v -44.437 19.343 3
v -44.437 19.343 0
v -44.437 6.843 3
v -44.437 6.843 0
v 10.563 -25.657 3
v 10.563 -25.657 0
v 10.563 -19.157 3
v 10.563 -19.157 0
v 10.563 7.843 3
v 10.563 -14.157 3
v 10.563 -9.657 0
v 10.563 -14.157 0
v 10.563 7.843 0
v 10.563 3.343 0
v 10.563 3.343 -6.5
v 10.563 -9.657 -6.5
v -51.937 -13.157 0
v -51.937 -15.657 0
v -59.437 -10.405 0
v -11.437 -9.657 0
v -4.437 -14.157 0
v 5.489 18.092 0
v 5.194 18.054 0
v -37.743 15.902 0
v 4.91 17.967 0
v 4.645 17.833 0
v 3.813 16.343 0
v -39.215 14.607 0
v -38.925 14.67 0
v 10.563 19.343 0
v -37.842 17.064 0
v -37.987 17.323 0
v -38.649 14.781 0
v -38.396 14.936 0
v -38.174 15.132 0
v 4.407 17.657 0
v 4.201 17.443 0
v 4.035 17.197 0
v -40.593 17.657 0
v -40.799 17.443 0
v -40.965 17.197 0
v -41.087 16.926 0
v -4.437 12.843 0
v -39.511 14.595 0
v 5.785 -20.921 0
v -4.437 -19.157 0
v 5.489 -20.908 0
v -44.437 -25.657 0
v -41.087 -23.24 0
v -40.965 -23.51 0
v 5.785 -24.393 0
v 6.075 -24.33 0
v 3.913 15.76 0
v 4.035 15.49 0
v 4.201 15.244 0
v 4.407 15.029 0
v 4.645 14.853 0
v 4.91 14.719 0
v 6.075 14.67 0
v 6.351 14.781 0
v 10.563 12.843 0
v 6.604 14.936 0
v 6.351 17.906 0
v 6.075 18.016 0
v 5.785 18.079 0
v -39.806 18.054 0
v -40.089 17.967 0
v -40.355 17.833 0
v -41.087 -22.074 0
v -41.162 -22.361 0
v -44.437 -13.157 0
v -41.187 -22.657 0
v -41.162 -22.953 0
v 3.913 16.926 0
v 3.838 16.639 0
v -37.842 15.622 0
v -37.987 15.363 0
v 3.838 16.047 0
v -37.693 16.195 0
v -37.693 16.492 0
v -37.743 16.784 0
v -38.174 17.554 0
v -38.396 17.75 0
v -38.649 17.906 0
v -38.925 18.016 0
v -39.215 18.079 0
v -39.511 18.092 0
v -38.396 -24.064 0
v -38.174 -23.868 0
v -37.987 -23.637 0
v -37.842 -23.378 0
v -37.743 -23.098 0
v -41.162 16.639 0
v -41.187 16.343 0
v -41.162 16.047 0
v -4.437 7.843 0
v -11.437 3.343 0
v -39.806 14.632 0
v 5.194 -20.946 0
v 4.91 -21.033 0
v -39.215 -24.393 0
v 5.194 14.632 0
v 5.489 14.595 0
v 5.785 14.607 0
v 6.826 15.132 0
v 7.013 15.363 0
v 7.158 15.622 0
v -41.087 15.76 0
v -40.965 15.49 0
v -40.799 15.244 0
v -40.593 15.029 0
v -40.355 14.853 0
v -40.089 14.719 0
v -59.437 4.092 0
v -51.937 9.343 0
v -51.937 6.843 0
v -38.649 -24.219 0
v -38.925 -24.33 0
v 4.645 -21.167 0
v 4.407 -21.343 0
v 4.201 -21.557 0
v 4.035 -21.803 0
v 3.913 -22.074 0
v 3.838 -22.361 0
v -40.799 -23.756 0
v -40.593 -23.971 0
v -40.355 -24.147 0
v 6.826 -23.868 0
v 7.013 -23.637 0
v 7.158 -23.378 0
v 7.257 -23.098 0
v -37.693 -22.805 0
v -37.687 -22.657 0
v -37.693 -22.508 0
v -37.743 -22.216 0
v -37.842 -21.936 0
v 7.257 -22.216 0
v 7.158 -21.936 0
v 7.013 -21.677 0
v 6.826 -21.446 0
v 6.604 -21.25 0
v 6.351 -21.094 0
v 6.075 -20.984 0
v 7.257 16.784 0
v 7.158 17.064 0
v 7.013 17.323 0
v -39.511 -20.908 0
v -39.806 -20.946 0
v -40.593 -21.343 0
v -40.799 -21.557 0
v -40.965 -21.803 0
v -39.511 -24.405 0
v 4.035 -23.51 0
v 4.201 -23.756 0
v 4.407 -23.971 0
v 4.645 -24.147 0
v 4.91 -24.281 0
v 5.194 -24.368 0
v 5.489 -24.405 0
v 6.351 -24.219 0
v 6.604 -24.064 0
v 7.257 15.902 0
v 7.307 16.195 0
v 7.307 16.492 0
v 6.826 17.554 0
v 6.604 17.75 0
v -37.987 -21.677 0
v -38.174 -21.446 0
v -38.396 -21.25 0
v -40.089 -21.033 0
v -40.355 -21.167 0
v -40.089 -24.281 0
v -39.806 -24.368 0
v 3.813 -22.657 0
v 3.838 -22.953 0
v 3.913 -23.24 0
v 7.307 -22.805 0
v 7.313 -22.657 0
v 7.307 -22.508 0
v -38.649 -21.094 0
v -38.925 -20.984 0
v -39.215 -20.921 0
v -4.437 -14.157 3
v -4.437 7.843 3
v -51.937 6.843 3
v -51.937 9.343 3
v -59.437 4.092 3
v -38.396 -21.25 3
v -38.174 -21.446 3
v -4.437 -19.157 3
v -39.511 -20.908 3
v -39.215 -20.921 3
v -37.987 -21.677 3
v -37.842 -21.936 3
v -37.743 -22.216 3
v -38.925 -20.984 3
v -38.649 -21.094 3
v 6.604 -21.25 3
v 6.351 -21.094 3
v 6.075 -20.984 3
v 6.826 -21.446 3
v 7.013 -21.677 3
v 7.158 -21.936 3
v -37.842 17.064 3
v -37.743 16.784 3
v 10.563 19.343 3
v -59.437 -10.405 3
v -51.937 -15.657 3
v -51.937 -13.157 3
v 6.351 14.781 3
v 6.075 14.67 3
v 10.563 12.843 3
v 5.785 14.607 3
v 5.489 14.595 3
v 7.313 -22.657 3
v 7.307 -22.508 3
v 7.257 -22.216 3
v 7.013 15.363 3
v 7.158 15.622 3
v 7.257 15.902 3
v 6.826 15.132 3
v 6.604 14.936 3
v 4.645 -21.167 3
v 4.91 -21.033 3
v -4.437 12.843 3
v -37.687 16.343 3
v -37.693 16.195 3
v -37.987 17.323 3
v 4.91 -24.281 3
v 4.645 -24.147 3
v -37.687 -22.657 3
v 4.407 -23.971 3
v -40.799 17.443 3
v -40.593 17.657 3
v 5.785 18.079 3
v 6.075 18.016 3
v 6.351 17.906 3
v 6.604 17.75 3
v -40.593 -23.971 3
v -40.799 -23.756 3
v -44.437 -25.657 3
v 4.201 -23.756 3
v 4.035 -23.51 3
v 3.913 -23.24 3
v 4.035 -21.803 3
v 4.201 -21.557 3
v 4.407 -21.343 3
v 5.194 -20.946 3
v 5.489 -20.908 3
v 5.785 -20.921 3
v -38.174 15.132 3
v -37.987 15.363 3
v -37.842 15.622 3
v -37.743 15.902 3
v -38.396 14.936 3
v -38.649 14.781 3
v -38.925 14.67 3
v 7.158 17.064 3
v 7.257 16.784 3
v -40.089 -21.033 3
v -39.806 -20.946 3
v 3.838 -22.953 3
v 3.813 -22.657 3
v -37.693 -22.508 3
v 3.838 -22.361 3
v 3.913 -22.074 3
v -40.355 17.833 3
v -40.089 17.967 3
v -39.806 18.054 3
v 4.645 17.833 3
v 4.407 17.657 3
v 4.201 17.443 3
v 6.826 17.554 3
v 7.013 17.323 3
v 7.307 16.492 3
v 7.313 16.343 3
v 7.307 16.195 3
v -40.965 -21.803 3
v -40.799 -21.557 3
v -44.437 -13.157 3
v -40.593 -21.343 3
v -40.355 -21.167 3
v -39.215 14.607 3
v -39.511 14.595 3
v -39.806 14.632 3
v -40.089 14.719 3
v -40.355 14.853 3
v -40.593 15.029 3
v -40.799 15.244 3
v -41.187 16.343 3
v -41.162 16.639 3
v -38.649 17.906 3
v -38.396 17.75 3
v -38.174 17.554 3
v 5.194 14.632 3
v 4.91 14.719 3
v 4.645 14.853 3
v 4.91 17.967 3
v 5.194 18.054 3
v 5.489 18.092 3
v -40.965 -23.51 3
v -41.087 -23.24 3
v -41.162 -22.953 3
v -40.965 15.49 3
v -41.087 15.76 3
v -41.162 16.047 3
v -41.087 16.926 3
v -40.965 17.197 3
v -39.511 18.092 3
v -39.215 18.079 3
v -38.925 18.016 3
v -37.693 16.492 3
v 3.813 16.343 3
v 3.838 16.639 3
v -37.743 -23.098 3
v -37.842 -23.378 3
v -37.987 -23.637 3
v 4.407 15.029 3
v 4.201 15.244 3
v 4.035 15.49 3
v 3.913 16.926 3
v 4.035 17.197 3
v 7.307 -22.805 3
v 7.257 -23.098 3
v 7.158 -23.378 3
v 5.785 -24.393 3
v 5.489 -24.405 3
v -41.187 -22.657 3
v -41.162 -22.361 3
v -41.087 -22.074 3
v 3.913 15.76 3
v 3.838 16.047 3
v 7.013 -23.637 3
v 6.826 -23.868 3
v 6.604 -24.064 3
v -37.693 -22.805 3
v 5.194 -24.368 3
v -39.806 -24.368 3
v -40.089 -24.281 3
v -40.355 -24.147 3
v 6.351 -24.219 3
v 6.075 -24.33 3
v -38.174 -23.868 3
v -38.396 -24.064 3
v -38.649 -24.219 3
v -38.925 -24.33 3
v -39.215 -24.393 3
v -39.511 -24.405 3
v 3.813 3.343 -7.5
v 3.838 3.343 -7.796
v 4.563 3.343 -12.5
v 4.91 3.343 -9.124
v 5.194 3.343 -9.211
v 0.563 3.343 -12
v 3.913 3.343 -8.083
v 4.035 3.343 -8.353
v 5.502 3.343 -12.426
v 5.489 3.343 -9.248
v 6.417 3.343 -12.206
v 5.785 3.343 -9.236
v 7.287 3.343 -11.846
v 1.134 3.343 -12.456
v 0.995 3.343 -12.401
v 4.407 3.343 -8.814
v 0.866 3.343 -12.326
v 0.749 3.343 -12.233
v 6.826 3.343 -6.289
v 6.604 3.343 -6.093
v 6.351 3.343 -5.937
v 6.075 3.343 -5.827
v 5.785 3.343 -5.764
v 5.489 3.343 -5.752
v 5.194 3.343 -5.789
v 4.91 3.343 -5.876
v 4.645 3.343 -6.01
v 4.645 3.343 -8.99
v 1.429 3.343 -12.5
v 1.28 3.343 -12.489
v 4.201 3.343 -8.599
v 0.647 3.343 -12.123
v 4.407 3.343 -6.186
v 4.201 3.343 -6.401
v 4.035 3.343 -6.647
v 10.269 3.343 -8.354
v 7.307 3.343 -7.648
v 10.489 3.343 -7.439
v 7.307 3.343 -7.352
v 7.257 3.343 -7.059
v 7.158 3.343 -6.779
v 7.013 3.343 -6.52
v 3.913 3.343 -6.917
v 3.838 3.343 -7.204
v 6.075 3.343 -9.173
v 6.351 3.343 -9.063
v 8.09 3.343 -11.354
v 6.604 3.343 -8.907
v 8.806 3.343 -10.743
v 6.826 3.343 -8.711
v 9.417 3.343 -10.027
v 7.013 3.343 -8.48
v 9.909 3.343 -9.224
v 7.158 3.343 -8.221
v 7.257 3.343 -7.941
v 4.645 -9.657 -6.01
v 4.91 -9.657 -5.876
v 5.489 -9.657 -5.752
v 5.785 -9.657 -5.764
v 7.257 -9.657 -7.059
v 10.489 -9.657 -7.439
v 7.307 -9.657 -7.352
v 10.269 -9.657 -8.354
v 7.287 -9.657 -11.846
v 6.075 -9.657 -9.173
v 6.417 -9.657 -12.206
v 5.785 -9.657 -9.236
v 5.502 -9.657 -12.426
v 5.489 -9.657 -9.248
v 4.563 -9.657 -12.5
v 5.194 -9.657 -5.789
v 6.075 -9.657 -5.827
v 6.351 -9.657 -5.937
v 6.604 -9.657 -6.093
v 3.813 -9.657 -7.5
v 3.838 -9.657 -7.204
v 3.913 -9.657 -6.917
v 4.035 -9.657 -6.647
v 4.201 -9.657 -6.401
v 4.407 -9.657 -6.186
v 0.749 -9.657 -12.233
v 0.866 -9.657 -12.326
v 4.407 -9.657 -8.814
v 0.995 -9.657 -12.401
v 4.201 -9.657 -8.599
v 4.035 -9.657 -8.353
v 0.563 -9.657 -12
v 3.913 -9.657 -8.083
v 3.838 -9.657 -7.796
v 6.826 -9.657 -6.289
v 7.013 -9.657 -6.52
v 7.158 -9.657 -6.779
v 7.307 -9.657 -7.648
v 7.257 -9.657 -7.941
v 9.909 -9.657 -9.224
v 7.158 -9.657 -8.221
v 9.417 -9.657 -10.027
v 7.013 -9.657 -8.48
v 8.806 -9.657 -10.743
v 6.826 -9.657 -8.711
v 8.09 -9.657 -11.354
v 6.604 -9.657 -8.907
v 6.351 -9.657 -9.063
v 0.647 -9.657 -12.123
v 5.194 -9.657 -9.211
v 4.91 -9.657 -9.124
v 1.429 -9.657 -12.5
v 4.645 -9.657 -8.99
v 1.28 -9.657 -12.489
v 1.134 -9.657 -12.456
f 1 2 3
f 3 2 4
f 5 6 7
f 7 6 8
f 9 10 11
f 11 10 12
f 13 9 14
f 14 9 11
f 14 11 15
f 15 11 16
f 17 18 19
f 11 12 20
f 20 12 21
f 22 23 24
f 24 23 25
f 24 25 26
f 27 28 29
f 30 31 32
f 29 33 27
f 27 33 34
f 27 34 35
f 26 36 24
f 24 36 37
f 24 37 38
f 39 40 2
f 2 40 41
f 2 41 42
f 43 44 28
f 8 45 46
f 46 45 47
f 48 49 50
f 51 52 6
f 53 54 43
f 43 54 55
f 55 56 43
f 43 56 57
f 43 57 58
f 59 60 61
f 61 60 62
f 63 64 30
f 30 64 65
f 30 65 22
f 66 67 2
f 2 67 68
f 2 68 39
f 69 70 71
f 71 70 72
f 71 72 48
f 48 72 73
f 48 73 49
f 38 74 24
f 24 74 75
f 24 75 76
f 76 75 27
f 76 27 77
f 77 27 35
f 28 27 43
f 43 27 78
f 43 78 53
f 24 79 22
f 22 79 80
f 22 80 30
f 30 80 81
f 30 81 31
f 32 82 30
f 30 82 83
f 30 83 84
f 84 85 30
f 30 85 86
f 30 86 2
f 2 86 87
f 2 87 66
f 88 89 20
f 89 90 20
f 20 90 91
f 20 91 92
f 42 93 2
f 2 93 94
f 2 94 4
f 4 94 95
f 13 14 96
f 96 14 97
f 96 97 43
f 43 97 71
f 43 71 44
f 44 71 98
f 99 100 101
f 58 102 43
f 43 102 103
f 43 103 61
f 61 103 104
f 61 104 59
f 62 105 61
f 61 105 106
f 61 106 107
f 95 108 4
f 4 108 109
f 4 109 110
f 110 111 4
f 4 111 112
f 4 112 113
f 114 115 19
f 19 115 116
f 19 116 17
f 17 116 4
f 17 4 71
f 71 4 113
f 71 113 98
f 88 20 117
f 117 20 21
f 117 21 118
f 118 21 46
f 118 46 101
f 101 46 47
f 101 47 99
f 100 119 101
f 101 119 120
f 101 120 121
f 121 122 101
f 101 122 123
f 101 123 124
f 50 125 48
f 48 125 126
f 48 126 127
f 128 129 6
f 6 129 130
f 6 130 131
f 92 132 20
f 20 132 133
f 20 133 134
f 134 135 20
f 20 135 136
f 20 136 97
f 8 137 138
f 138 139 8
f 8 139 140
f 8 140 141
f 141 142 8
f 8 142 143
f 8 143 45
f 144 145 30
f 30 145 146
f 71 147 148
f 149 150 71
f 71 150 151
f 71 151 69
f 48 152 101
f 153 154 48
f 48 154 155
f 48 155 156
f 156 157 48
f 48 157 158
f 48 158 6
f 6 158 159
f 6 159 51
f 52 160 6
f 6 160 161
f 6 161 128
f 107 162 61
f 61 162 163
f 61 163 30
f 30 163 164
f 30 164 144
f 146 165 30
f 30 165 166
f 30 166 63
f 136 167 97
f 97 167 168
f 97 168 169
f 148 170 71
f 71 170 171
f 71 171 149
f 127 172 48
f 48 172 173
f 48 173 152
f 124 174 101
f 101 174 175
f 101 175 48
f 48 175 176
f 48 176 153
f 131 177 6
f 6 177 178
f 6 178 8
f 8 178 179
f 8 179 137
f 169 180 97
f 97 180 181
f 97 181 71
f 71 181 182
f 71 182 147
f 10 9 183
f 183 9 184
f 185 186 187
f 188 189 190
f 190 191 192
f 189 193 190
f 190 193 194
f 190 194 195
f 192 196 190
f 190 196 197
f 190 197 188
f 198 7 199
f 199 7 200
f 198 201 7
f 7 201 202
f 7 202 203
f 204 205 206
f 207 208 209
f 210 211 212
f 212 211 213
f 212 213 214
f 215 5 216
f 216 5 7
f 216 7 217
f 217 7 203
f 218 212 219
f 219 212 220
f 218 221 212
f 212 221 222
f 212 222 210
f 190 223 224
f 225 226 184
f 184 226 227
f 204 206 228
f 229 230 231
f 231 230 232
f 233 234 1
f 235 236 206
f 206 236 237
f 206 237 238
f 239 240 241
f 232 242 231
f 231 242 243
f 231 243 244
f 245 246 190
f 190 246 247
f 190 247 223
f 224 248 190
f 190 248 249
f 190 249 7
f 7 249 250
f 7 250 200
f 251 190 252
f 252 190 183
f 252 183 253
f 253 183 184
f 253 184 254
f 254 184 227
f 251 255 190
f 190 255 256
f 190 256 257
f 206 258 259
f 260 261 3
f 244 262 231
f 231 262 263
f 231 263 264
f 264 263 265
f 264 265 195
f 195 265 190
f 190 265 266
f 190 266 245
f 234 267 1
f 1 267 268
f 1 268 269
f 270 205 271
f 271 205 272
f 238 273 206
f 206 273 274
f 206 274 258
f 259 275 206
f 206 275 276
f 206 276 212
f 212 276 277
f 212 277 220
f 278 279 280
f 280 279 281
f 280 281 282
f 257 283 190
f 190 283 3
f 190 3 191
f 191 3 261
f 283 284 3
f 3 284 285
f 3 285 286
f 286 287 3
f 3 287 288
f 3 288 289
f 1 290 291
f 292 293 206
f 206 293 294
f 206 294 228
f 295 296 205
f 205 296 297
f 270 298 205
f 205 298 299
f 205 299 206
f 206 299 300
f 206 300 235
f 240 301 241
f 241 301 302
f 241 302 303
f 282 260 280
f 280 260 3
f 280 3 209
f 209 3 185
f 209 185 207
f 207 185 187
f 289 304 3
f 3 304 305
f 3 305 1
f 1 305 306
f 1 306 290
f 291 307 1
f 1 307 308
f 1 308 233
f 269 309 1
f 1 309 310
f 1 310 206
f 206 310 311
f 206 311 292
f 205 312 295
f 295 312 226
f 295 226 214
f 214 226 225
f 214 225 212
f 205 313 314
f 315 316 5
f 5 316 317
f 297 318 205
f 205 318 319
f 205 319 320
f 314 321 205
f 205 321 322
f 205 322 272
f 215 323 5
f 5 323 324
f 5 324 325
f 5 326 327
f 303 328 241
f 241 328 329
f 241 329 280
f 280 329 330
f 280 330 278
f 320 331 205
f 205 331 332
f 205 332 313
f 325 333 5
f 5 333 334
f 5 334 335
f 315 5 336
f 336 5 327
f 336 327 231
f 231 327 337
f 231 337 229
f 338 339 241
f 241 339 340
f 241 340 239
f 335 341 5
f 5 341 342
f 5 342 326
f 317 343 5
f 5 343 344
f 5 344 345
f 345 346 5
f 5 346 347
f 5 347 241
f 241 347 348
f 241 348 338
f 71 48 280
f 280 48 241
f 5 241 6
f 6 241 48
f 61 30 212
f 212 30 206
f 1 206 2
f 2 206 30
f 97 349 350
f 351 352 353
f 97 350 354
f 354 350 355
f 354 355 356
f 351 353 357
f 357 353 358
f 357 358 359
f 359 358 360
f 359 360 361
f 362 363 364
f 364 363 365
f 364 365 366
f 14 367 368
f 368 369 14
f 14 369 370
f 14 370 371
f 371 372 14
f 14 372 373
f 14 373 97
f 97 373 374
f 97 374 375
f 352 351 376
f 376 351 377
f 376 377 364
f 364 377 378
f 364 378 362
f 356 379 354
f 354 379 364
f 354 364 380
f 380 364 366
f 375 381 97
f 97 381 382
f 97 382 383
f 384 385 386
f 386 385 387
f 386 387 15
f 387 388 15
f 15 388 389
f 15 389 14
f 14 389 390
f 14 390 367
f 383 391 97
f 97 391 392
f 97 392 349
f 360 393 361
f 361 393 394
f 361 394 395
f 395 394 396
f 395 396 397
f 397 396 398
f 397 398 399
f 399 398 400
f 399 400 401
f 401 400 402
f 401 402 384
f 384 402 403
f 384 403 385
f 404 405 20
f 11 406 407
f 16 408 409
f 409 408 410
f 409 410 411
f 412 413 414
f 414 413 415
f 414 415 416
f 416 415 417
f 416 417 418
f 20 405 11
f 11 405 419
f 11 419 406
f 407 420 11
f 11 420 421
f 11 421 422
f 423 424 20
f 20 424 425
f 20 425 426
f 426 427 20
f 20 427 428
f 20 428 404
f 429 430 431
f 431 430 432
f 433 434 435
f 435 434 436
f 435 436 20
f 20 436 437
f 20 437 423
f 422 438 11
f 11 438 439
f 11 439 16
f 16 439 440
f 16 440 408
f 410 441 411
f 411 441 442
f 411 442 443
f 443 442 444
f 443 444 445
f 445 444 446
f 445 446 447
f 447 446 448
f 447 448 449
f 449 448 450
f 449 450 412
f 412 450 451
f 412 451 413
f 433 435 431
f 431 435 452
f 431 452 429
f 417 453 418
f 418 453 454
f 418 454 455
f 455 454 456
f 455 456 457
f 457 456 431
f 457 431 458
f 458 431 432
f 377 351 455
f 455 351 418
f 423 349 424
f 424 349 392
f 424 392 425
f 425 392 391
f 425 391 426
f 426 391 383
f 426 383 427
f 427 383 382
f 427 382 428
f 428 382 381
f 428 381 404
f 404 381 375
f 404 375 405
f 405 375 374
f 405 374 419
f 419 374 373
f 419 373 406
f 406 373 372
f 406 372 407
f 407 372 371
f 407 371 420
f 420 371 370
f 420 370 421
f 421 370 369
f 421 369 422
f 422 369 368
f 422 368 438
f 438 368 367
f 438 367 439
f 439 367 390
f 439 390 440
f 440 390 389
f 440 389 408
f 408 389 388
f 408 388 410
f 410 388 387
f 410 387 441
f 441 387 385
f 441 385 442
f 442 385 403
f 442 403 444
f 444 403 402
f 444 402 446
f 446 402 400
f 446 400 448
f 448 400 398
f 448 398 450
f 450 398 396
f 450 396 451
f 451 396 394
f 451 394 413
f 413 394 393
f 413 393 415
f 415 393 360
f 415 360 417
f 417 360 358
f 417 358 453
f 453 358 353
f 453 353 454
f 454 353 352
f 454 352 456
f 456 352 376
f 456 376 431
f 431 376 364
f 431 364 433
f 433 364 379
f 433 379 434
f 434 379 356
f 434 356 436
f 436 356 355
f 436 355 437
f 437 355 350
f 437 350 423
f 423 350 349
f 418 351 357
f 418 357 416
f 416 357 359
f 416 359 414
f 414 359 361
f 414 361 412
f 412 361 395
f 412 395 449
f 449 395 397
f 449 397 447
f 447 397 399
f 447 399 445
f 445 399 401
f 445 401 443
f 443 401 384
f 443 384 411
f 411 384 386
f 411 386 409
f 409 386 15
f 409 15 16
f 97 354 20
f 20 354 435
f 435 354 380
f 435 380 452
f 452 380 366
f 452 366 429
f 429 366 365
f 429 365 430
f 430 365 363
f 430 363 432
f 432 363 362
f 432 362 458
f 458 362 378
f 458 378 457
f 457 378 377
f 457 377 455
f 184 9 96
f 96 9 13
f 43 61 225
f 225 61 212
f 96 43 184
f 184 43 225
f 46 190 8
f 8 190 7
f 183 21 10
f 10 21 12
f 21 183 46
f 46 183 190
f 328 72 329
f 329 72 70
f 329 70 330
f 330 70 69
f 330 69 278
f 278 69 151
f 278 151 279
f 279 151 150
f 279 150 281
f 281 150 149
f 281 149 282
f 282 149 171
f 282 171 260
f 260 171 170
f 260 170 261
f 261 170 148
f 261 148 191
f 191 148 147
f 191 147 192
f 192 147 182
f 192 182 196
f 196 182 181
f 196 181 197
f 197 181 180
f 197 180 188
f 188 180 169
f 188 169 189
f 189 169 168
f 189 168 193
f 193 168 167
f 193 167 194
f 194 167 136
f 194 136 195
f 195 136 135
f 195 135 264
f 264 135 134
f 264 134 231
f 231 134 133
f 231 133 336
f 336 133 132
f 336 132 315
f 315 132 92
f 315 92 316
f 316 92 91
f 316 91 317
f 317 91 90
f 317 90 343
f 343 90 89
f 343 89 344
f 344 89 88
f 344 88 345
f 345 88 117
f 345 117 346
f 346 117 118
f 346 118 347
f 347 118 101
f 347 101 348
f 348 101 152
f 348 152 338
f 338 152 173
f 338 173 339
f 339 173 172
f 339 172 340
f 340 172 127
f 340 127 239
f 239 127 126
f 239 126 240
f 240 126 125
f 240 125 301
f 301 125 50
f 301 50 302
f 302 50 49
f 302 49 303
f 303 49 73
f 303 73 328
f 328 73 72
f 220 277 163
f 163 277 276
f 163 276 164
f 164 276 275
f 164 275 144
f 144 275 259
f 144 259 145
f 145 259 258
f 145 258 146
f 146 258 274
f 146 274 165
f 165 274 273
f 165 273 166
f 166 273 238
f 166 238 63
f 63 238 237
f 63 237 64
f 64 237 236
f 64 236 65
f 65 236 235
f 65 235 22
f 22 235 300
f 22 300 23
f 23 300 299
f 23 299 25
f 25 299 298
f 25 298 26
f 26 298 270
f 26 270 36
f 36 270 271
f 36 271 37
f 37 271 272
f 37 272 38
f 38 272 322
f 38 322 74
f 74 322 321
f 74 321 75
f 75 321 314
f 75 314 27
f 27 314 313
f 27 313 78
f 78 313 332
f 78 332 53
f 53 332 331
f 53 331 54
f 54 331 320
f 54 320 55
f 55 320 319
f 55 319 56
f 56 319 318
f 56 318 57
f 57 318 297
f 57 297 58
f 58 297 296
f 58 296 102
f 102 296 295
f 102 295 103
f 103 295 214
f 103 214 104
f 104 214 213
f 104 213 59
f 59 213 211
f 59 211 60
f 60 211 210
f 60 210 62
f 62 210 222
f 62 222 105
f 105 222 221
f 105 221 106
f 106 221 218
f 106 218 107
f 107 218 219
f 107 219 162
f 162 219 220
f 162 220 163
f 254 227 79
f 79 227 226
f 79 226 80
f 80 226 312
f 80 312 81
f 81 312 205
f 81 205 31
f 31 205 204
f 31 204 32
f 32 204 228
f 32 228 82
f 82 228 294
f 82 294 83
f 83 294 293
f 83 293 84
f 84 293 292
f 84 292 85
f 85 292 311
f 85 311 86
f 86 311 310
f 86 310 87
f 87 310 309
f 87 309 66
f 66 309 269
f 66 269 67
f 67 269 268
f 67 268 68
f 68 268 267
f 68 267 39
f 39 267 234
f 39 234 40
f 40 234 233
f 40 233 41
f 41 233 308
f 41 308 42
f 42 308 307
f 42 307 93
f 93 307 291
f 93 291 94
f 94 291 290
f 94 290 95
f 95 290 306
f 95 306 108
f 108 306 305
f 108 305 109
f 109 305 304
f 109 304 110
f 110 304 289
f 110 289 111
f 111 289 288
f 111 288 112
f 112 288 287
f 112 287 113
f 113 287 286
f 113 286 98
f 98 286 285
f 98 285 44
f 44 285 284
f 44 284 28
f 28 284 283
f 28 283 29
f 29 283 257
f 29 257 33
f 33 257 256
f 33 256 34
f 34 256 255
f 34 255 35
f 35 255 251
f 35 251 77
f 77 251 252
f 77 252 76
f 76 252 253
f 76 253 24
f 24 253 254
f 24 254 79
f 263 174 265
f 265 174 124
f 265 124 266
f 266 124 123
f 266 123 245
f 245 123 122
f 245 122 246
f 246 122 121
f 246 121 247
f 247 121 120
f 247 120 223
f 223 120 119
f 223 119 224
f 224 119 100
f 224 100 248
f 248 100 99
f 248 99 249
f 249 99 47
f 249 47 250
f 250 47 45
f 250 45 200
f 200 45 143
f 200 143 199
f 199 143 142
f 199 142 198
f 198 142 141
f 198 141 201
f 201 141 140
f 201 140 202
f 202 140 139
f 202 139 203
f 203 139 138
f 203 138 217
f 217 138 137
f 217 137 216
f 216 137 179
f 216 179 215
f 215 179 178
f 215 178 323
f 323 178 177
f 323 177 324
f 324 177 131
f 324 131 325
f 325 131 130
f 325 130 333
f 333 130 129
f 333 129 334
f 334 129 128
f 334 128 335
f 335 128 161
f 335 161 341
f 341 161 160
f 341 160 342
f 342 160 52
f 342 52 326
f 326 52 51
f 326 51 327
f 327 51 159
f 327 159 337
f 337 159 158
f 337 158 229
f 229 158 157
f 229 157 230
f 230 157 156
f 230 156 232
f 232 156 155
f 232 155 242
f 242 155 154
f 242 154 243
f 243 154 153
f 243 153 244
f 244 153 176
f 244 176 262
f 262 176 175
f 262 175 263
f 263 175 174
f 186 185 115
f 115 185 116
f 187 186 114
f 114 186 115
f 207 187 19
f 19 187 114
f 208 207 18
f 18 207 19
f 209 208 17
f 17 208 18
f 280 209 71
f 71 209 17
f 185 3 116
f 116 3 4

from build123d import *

# Parameters (mm, degrees)
SKETCH1_W           = 55
SKETCH1_H           = 45
BOSS_EXTRUDE1_DEPTH = 3
SKETCH2_W           = 10
SKETCH2_H           = 13
BOSS_EXTRUDE2_DEPTH = 12.5
SKETCH3_R           = 1.75
CUT_EXTRUDE1_DEPTH  = 13.5
FILLET1_R           = 6
CHAMFER1_SIZE       = 12
FILLET3_R           = 1
SKETCH4_W           = 20
SKETCH4_H           = 5
CUT_EXTRUDE3_DEPTH  = 5
SKETCH7_R           = 1.75
CUT_EXTRUDE4_DEPTH  = 5
BOSS_EXTRUDE4_DEPTH = 3


with BuildPart() as part:
    # Sketch1 → Boss-Extrude1 (new body)
    with BuildSketch(Plane.XY):
        with Locations((-16.936997319, -3.156836461)):
            Rectangle(SKETCH1_W, SKETCH1_H)
    extrude(amount=BOSS_EXTRUDE1_DEPTH)

    # Sketch2 → Boss-Extrude2 (add)
    with BuildSketch(Plane(origin=(0, 0, 0), x_dir=(-1, 0, 0), z_dir=(0, 0, -1))):
        with Locations((-5.563002681, -3.156836461)):
            Rectangle(SKETCH2_W, SKETCH2_H)
    extrude(amount=BOSS_EXTRUDE2_DEPTH)

    # Sketch3 → Cut-Extrude1 (cut)
    with BuildSketch(Plane(origin=(0, 3.343163539, 0), x_dir=(1, 0, 0), z_dir=(0, 1, 0))):
        with Locations(Location((5.563002681, 7.5, 0), (0, 0, 180))):
            Circle(SKETCH3_R)
    extrude(amount=-CUT_EXTRUDE1_DEPTH, mode=Mode.SUBTRACT)

    # Fillet1
    fillet1_edges = [part.edges().sort_by_distance(p)[0] for p in [
        (10.563002681, -3.156836461, -12.5),
    ]]
    fillet(fillet1_edges, radius=FILLET1_R)

    # Chamfer1
    chamfer1_edges = [part.edges().sort_by_distance(p)[0] for p in [
        (0.563002681, -3.156836461, 0),
    ]]
    chamfer(chamfer1_edges, length=CHAMFER1_SIZE)

    # Fillet3
    # the kernel refuses this fillet: 1 mm, written as the material it takes off along each edge
    with BuildSketch(Plane(origin=(0.563002681, 5.508227048, -12.5), x_dir=(1, 0, 0), z_dir=(0, -1, 0))) as fillet3_piece_1:
        with BuildLine():
            CenterArc((0.866025404, 1), FILLET3_R, 210, 60)
            Line((0, 0.5), (-0.017320508, 0.49))
            ThreePointArc((-0.017320508, 0.49), (-0.02, 0.25), (-0.02, 0))
            Line((-0.02, 0), (0, -0.02))
            Line((0, -0.02), (0.866025404, -0.02))
            Line((0.866025404, -0.02), (0.866025404, 0))
        make_face()
    extrude(amount=17.330127019, mode=Mode.SUBTRACT)

    # Sketch4 → Cut-Extrude3 (cut)
    with BuildSketch(Plane(origin=(0, 0, 0), x_dir=(-1, 0, 0), z_dir=(0, 0, -1))):
        with Locations((-5.563002681, 10.343163539)):
            Rectangle(SKETCH4_W, SKETCH4_H)
    cut_extrude3 = extrude(amount=-CUT_EXTRUDE3_DEPTH, mode=Mode.SUBTRACT)

    # Mirror2: Cut-Extrude3 across plane
    add(cut_extrude3.mirror(Plane.ZX.offset(-3.156836461)), mode=Mode.SUBTRACT)

    # Sketch7 → Cut-Extrude4 (cut)
    with BuildSketch(Plane(origin=(0, 0, 0), x_dir=(-1, 0, 0), z_dir=(0, 0, -1))):
        with Locations((-5.563002681, 16.343163539)):
            Circle(SKETCH7_R)
        with Locations((39.436997319, 16.343163539)):
            Circle(SKETCH7_R)
        with Locations(Location((39.436997319, -22.656836461, 0), (0, 0, 180))):
            Circle(SKETCH7_R)
        with Locations(Location((-5.563002681, -22.656836461, 0), (0, 0, 180))):
            Circle(SKETCH7_R)
    extrude(amount=-CUT_EXTRUDE4_DEPTH, mode=Mode.SUBTRACT)

    # Sketch8 → Boss-Extrude4 (add)
    with BuildSketch(Plane(origin=(0, 0, 0), x_dir=(-1, 0, 0), z_dir=(0, 0, -1))):
        Polygon((44.436997319, 6.843163539), (51.936997319, 6.843163539), (51.936997319, 9.343163539), (59.436997319, 4.091607002), (59.436997319, -10.405279925), (51.936997319, -15.656836461), (51.936997319, -13.156836461), (44.436997319, -13.156836461), align=None)
    extrude(amount=-BOSS_EXTRUDE4_DEPTH)


solid = part.part
